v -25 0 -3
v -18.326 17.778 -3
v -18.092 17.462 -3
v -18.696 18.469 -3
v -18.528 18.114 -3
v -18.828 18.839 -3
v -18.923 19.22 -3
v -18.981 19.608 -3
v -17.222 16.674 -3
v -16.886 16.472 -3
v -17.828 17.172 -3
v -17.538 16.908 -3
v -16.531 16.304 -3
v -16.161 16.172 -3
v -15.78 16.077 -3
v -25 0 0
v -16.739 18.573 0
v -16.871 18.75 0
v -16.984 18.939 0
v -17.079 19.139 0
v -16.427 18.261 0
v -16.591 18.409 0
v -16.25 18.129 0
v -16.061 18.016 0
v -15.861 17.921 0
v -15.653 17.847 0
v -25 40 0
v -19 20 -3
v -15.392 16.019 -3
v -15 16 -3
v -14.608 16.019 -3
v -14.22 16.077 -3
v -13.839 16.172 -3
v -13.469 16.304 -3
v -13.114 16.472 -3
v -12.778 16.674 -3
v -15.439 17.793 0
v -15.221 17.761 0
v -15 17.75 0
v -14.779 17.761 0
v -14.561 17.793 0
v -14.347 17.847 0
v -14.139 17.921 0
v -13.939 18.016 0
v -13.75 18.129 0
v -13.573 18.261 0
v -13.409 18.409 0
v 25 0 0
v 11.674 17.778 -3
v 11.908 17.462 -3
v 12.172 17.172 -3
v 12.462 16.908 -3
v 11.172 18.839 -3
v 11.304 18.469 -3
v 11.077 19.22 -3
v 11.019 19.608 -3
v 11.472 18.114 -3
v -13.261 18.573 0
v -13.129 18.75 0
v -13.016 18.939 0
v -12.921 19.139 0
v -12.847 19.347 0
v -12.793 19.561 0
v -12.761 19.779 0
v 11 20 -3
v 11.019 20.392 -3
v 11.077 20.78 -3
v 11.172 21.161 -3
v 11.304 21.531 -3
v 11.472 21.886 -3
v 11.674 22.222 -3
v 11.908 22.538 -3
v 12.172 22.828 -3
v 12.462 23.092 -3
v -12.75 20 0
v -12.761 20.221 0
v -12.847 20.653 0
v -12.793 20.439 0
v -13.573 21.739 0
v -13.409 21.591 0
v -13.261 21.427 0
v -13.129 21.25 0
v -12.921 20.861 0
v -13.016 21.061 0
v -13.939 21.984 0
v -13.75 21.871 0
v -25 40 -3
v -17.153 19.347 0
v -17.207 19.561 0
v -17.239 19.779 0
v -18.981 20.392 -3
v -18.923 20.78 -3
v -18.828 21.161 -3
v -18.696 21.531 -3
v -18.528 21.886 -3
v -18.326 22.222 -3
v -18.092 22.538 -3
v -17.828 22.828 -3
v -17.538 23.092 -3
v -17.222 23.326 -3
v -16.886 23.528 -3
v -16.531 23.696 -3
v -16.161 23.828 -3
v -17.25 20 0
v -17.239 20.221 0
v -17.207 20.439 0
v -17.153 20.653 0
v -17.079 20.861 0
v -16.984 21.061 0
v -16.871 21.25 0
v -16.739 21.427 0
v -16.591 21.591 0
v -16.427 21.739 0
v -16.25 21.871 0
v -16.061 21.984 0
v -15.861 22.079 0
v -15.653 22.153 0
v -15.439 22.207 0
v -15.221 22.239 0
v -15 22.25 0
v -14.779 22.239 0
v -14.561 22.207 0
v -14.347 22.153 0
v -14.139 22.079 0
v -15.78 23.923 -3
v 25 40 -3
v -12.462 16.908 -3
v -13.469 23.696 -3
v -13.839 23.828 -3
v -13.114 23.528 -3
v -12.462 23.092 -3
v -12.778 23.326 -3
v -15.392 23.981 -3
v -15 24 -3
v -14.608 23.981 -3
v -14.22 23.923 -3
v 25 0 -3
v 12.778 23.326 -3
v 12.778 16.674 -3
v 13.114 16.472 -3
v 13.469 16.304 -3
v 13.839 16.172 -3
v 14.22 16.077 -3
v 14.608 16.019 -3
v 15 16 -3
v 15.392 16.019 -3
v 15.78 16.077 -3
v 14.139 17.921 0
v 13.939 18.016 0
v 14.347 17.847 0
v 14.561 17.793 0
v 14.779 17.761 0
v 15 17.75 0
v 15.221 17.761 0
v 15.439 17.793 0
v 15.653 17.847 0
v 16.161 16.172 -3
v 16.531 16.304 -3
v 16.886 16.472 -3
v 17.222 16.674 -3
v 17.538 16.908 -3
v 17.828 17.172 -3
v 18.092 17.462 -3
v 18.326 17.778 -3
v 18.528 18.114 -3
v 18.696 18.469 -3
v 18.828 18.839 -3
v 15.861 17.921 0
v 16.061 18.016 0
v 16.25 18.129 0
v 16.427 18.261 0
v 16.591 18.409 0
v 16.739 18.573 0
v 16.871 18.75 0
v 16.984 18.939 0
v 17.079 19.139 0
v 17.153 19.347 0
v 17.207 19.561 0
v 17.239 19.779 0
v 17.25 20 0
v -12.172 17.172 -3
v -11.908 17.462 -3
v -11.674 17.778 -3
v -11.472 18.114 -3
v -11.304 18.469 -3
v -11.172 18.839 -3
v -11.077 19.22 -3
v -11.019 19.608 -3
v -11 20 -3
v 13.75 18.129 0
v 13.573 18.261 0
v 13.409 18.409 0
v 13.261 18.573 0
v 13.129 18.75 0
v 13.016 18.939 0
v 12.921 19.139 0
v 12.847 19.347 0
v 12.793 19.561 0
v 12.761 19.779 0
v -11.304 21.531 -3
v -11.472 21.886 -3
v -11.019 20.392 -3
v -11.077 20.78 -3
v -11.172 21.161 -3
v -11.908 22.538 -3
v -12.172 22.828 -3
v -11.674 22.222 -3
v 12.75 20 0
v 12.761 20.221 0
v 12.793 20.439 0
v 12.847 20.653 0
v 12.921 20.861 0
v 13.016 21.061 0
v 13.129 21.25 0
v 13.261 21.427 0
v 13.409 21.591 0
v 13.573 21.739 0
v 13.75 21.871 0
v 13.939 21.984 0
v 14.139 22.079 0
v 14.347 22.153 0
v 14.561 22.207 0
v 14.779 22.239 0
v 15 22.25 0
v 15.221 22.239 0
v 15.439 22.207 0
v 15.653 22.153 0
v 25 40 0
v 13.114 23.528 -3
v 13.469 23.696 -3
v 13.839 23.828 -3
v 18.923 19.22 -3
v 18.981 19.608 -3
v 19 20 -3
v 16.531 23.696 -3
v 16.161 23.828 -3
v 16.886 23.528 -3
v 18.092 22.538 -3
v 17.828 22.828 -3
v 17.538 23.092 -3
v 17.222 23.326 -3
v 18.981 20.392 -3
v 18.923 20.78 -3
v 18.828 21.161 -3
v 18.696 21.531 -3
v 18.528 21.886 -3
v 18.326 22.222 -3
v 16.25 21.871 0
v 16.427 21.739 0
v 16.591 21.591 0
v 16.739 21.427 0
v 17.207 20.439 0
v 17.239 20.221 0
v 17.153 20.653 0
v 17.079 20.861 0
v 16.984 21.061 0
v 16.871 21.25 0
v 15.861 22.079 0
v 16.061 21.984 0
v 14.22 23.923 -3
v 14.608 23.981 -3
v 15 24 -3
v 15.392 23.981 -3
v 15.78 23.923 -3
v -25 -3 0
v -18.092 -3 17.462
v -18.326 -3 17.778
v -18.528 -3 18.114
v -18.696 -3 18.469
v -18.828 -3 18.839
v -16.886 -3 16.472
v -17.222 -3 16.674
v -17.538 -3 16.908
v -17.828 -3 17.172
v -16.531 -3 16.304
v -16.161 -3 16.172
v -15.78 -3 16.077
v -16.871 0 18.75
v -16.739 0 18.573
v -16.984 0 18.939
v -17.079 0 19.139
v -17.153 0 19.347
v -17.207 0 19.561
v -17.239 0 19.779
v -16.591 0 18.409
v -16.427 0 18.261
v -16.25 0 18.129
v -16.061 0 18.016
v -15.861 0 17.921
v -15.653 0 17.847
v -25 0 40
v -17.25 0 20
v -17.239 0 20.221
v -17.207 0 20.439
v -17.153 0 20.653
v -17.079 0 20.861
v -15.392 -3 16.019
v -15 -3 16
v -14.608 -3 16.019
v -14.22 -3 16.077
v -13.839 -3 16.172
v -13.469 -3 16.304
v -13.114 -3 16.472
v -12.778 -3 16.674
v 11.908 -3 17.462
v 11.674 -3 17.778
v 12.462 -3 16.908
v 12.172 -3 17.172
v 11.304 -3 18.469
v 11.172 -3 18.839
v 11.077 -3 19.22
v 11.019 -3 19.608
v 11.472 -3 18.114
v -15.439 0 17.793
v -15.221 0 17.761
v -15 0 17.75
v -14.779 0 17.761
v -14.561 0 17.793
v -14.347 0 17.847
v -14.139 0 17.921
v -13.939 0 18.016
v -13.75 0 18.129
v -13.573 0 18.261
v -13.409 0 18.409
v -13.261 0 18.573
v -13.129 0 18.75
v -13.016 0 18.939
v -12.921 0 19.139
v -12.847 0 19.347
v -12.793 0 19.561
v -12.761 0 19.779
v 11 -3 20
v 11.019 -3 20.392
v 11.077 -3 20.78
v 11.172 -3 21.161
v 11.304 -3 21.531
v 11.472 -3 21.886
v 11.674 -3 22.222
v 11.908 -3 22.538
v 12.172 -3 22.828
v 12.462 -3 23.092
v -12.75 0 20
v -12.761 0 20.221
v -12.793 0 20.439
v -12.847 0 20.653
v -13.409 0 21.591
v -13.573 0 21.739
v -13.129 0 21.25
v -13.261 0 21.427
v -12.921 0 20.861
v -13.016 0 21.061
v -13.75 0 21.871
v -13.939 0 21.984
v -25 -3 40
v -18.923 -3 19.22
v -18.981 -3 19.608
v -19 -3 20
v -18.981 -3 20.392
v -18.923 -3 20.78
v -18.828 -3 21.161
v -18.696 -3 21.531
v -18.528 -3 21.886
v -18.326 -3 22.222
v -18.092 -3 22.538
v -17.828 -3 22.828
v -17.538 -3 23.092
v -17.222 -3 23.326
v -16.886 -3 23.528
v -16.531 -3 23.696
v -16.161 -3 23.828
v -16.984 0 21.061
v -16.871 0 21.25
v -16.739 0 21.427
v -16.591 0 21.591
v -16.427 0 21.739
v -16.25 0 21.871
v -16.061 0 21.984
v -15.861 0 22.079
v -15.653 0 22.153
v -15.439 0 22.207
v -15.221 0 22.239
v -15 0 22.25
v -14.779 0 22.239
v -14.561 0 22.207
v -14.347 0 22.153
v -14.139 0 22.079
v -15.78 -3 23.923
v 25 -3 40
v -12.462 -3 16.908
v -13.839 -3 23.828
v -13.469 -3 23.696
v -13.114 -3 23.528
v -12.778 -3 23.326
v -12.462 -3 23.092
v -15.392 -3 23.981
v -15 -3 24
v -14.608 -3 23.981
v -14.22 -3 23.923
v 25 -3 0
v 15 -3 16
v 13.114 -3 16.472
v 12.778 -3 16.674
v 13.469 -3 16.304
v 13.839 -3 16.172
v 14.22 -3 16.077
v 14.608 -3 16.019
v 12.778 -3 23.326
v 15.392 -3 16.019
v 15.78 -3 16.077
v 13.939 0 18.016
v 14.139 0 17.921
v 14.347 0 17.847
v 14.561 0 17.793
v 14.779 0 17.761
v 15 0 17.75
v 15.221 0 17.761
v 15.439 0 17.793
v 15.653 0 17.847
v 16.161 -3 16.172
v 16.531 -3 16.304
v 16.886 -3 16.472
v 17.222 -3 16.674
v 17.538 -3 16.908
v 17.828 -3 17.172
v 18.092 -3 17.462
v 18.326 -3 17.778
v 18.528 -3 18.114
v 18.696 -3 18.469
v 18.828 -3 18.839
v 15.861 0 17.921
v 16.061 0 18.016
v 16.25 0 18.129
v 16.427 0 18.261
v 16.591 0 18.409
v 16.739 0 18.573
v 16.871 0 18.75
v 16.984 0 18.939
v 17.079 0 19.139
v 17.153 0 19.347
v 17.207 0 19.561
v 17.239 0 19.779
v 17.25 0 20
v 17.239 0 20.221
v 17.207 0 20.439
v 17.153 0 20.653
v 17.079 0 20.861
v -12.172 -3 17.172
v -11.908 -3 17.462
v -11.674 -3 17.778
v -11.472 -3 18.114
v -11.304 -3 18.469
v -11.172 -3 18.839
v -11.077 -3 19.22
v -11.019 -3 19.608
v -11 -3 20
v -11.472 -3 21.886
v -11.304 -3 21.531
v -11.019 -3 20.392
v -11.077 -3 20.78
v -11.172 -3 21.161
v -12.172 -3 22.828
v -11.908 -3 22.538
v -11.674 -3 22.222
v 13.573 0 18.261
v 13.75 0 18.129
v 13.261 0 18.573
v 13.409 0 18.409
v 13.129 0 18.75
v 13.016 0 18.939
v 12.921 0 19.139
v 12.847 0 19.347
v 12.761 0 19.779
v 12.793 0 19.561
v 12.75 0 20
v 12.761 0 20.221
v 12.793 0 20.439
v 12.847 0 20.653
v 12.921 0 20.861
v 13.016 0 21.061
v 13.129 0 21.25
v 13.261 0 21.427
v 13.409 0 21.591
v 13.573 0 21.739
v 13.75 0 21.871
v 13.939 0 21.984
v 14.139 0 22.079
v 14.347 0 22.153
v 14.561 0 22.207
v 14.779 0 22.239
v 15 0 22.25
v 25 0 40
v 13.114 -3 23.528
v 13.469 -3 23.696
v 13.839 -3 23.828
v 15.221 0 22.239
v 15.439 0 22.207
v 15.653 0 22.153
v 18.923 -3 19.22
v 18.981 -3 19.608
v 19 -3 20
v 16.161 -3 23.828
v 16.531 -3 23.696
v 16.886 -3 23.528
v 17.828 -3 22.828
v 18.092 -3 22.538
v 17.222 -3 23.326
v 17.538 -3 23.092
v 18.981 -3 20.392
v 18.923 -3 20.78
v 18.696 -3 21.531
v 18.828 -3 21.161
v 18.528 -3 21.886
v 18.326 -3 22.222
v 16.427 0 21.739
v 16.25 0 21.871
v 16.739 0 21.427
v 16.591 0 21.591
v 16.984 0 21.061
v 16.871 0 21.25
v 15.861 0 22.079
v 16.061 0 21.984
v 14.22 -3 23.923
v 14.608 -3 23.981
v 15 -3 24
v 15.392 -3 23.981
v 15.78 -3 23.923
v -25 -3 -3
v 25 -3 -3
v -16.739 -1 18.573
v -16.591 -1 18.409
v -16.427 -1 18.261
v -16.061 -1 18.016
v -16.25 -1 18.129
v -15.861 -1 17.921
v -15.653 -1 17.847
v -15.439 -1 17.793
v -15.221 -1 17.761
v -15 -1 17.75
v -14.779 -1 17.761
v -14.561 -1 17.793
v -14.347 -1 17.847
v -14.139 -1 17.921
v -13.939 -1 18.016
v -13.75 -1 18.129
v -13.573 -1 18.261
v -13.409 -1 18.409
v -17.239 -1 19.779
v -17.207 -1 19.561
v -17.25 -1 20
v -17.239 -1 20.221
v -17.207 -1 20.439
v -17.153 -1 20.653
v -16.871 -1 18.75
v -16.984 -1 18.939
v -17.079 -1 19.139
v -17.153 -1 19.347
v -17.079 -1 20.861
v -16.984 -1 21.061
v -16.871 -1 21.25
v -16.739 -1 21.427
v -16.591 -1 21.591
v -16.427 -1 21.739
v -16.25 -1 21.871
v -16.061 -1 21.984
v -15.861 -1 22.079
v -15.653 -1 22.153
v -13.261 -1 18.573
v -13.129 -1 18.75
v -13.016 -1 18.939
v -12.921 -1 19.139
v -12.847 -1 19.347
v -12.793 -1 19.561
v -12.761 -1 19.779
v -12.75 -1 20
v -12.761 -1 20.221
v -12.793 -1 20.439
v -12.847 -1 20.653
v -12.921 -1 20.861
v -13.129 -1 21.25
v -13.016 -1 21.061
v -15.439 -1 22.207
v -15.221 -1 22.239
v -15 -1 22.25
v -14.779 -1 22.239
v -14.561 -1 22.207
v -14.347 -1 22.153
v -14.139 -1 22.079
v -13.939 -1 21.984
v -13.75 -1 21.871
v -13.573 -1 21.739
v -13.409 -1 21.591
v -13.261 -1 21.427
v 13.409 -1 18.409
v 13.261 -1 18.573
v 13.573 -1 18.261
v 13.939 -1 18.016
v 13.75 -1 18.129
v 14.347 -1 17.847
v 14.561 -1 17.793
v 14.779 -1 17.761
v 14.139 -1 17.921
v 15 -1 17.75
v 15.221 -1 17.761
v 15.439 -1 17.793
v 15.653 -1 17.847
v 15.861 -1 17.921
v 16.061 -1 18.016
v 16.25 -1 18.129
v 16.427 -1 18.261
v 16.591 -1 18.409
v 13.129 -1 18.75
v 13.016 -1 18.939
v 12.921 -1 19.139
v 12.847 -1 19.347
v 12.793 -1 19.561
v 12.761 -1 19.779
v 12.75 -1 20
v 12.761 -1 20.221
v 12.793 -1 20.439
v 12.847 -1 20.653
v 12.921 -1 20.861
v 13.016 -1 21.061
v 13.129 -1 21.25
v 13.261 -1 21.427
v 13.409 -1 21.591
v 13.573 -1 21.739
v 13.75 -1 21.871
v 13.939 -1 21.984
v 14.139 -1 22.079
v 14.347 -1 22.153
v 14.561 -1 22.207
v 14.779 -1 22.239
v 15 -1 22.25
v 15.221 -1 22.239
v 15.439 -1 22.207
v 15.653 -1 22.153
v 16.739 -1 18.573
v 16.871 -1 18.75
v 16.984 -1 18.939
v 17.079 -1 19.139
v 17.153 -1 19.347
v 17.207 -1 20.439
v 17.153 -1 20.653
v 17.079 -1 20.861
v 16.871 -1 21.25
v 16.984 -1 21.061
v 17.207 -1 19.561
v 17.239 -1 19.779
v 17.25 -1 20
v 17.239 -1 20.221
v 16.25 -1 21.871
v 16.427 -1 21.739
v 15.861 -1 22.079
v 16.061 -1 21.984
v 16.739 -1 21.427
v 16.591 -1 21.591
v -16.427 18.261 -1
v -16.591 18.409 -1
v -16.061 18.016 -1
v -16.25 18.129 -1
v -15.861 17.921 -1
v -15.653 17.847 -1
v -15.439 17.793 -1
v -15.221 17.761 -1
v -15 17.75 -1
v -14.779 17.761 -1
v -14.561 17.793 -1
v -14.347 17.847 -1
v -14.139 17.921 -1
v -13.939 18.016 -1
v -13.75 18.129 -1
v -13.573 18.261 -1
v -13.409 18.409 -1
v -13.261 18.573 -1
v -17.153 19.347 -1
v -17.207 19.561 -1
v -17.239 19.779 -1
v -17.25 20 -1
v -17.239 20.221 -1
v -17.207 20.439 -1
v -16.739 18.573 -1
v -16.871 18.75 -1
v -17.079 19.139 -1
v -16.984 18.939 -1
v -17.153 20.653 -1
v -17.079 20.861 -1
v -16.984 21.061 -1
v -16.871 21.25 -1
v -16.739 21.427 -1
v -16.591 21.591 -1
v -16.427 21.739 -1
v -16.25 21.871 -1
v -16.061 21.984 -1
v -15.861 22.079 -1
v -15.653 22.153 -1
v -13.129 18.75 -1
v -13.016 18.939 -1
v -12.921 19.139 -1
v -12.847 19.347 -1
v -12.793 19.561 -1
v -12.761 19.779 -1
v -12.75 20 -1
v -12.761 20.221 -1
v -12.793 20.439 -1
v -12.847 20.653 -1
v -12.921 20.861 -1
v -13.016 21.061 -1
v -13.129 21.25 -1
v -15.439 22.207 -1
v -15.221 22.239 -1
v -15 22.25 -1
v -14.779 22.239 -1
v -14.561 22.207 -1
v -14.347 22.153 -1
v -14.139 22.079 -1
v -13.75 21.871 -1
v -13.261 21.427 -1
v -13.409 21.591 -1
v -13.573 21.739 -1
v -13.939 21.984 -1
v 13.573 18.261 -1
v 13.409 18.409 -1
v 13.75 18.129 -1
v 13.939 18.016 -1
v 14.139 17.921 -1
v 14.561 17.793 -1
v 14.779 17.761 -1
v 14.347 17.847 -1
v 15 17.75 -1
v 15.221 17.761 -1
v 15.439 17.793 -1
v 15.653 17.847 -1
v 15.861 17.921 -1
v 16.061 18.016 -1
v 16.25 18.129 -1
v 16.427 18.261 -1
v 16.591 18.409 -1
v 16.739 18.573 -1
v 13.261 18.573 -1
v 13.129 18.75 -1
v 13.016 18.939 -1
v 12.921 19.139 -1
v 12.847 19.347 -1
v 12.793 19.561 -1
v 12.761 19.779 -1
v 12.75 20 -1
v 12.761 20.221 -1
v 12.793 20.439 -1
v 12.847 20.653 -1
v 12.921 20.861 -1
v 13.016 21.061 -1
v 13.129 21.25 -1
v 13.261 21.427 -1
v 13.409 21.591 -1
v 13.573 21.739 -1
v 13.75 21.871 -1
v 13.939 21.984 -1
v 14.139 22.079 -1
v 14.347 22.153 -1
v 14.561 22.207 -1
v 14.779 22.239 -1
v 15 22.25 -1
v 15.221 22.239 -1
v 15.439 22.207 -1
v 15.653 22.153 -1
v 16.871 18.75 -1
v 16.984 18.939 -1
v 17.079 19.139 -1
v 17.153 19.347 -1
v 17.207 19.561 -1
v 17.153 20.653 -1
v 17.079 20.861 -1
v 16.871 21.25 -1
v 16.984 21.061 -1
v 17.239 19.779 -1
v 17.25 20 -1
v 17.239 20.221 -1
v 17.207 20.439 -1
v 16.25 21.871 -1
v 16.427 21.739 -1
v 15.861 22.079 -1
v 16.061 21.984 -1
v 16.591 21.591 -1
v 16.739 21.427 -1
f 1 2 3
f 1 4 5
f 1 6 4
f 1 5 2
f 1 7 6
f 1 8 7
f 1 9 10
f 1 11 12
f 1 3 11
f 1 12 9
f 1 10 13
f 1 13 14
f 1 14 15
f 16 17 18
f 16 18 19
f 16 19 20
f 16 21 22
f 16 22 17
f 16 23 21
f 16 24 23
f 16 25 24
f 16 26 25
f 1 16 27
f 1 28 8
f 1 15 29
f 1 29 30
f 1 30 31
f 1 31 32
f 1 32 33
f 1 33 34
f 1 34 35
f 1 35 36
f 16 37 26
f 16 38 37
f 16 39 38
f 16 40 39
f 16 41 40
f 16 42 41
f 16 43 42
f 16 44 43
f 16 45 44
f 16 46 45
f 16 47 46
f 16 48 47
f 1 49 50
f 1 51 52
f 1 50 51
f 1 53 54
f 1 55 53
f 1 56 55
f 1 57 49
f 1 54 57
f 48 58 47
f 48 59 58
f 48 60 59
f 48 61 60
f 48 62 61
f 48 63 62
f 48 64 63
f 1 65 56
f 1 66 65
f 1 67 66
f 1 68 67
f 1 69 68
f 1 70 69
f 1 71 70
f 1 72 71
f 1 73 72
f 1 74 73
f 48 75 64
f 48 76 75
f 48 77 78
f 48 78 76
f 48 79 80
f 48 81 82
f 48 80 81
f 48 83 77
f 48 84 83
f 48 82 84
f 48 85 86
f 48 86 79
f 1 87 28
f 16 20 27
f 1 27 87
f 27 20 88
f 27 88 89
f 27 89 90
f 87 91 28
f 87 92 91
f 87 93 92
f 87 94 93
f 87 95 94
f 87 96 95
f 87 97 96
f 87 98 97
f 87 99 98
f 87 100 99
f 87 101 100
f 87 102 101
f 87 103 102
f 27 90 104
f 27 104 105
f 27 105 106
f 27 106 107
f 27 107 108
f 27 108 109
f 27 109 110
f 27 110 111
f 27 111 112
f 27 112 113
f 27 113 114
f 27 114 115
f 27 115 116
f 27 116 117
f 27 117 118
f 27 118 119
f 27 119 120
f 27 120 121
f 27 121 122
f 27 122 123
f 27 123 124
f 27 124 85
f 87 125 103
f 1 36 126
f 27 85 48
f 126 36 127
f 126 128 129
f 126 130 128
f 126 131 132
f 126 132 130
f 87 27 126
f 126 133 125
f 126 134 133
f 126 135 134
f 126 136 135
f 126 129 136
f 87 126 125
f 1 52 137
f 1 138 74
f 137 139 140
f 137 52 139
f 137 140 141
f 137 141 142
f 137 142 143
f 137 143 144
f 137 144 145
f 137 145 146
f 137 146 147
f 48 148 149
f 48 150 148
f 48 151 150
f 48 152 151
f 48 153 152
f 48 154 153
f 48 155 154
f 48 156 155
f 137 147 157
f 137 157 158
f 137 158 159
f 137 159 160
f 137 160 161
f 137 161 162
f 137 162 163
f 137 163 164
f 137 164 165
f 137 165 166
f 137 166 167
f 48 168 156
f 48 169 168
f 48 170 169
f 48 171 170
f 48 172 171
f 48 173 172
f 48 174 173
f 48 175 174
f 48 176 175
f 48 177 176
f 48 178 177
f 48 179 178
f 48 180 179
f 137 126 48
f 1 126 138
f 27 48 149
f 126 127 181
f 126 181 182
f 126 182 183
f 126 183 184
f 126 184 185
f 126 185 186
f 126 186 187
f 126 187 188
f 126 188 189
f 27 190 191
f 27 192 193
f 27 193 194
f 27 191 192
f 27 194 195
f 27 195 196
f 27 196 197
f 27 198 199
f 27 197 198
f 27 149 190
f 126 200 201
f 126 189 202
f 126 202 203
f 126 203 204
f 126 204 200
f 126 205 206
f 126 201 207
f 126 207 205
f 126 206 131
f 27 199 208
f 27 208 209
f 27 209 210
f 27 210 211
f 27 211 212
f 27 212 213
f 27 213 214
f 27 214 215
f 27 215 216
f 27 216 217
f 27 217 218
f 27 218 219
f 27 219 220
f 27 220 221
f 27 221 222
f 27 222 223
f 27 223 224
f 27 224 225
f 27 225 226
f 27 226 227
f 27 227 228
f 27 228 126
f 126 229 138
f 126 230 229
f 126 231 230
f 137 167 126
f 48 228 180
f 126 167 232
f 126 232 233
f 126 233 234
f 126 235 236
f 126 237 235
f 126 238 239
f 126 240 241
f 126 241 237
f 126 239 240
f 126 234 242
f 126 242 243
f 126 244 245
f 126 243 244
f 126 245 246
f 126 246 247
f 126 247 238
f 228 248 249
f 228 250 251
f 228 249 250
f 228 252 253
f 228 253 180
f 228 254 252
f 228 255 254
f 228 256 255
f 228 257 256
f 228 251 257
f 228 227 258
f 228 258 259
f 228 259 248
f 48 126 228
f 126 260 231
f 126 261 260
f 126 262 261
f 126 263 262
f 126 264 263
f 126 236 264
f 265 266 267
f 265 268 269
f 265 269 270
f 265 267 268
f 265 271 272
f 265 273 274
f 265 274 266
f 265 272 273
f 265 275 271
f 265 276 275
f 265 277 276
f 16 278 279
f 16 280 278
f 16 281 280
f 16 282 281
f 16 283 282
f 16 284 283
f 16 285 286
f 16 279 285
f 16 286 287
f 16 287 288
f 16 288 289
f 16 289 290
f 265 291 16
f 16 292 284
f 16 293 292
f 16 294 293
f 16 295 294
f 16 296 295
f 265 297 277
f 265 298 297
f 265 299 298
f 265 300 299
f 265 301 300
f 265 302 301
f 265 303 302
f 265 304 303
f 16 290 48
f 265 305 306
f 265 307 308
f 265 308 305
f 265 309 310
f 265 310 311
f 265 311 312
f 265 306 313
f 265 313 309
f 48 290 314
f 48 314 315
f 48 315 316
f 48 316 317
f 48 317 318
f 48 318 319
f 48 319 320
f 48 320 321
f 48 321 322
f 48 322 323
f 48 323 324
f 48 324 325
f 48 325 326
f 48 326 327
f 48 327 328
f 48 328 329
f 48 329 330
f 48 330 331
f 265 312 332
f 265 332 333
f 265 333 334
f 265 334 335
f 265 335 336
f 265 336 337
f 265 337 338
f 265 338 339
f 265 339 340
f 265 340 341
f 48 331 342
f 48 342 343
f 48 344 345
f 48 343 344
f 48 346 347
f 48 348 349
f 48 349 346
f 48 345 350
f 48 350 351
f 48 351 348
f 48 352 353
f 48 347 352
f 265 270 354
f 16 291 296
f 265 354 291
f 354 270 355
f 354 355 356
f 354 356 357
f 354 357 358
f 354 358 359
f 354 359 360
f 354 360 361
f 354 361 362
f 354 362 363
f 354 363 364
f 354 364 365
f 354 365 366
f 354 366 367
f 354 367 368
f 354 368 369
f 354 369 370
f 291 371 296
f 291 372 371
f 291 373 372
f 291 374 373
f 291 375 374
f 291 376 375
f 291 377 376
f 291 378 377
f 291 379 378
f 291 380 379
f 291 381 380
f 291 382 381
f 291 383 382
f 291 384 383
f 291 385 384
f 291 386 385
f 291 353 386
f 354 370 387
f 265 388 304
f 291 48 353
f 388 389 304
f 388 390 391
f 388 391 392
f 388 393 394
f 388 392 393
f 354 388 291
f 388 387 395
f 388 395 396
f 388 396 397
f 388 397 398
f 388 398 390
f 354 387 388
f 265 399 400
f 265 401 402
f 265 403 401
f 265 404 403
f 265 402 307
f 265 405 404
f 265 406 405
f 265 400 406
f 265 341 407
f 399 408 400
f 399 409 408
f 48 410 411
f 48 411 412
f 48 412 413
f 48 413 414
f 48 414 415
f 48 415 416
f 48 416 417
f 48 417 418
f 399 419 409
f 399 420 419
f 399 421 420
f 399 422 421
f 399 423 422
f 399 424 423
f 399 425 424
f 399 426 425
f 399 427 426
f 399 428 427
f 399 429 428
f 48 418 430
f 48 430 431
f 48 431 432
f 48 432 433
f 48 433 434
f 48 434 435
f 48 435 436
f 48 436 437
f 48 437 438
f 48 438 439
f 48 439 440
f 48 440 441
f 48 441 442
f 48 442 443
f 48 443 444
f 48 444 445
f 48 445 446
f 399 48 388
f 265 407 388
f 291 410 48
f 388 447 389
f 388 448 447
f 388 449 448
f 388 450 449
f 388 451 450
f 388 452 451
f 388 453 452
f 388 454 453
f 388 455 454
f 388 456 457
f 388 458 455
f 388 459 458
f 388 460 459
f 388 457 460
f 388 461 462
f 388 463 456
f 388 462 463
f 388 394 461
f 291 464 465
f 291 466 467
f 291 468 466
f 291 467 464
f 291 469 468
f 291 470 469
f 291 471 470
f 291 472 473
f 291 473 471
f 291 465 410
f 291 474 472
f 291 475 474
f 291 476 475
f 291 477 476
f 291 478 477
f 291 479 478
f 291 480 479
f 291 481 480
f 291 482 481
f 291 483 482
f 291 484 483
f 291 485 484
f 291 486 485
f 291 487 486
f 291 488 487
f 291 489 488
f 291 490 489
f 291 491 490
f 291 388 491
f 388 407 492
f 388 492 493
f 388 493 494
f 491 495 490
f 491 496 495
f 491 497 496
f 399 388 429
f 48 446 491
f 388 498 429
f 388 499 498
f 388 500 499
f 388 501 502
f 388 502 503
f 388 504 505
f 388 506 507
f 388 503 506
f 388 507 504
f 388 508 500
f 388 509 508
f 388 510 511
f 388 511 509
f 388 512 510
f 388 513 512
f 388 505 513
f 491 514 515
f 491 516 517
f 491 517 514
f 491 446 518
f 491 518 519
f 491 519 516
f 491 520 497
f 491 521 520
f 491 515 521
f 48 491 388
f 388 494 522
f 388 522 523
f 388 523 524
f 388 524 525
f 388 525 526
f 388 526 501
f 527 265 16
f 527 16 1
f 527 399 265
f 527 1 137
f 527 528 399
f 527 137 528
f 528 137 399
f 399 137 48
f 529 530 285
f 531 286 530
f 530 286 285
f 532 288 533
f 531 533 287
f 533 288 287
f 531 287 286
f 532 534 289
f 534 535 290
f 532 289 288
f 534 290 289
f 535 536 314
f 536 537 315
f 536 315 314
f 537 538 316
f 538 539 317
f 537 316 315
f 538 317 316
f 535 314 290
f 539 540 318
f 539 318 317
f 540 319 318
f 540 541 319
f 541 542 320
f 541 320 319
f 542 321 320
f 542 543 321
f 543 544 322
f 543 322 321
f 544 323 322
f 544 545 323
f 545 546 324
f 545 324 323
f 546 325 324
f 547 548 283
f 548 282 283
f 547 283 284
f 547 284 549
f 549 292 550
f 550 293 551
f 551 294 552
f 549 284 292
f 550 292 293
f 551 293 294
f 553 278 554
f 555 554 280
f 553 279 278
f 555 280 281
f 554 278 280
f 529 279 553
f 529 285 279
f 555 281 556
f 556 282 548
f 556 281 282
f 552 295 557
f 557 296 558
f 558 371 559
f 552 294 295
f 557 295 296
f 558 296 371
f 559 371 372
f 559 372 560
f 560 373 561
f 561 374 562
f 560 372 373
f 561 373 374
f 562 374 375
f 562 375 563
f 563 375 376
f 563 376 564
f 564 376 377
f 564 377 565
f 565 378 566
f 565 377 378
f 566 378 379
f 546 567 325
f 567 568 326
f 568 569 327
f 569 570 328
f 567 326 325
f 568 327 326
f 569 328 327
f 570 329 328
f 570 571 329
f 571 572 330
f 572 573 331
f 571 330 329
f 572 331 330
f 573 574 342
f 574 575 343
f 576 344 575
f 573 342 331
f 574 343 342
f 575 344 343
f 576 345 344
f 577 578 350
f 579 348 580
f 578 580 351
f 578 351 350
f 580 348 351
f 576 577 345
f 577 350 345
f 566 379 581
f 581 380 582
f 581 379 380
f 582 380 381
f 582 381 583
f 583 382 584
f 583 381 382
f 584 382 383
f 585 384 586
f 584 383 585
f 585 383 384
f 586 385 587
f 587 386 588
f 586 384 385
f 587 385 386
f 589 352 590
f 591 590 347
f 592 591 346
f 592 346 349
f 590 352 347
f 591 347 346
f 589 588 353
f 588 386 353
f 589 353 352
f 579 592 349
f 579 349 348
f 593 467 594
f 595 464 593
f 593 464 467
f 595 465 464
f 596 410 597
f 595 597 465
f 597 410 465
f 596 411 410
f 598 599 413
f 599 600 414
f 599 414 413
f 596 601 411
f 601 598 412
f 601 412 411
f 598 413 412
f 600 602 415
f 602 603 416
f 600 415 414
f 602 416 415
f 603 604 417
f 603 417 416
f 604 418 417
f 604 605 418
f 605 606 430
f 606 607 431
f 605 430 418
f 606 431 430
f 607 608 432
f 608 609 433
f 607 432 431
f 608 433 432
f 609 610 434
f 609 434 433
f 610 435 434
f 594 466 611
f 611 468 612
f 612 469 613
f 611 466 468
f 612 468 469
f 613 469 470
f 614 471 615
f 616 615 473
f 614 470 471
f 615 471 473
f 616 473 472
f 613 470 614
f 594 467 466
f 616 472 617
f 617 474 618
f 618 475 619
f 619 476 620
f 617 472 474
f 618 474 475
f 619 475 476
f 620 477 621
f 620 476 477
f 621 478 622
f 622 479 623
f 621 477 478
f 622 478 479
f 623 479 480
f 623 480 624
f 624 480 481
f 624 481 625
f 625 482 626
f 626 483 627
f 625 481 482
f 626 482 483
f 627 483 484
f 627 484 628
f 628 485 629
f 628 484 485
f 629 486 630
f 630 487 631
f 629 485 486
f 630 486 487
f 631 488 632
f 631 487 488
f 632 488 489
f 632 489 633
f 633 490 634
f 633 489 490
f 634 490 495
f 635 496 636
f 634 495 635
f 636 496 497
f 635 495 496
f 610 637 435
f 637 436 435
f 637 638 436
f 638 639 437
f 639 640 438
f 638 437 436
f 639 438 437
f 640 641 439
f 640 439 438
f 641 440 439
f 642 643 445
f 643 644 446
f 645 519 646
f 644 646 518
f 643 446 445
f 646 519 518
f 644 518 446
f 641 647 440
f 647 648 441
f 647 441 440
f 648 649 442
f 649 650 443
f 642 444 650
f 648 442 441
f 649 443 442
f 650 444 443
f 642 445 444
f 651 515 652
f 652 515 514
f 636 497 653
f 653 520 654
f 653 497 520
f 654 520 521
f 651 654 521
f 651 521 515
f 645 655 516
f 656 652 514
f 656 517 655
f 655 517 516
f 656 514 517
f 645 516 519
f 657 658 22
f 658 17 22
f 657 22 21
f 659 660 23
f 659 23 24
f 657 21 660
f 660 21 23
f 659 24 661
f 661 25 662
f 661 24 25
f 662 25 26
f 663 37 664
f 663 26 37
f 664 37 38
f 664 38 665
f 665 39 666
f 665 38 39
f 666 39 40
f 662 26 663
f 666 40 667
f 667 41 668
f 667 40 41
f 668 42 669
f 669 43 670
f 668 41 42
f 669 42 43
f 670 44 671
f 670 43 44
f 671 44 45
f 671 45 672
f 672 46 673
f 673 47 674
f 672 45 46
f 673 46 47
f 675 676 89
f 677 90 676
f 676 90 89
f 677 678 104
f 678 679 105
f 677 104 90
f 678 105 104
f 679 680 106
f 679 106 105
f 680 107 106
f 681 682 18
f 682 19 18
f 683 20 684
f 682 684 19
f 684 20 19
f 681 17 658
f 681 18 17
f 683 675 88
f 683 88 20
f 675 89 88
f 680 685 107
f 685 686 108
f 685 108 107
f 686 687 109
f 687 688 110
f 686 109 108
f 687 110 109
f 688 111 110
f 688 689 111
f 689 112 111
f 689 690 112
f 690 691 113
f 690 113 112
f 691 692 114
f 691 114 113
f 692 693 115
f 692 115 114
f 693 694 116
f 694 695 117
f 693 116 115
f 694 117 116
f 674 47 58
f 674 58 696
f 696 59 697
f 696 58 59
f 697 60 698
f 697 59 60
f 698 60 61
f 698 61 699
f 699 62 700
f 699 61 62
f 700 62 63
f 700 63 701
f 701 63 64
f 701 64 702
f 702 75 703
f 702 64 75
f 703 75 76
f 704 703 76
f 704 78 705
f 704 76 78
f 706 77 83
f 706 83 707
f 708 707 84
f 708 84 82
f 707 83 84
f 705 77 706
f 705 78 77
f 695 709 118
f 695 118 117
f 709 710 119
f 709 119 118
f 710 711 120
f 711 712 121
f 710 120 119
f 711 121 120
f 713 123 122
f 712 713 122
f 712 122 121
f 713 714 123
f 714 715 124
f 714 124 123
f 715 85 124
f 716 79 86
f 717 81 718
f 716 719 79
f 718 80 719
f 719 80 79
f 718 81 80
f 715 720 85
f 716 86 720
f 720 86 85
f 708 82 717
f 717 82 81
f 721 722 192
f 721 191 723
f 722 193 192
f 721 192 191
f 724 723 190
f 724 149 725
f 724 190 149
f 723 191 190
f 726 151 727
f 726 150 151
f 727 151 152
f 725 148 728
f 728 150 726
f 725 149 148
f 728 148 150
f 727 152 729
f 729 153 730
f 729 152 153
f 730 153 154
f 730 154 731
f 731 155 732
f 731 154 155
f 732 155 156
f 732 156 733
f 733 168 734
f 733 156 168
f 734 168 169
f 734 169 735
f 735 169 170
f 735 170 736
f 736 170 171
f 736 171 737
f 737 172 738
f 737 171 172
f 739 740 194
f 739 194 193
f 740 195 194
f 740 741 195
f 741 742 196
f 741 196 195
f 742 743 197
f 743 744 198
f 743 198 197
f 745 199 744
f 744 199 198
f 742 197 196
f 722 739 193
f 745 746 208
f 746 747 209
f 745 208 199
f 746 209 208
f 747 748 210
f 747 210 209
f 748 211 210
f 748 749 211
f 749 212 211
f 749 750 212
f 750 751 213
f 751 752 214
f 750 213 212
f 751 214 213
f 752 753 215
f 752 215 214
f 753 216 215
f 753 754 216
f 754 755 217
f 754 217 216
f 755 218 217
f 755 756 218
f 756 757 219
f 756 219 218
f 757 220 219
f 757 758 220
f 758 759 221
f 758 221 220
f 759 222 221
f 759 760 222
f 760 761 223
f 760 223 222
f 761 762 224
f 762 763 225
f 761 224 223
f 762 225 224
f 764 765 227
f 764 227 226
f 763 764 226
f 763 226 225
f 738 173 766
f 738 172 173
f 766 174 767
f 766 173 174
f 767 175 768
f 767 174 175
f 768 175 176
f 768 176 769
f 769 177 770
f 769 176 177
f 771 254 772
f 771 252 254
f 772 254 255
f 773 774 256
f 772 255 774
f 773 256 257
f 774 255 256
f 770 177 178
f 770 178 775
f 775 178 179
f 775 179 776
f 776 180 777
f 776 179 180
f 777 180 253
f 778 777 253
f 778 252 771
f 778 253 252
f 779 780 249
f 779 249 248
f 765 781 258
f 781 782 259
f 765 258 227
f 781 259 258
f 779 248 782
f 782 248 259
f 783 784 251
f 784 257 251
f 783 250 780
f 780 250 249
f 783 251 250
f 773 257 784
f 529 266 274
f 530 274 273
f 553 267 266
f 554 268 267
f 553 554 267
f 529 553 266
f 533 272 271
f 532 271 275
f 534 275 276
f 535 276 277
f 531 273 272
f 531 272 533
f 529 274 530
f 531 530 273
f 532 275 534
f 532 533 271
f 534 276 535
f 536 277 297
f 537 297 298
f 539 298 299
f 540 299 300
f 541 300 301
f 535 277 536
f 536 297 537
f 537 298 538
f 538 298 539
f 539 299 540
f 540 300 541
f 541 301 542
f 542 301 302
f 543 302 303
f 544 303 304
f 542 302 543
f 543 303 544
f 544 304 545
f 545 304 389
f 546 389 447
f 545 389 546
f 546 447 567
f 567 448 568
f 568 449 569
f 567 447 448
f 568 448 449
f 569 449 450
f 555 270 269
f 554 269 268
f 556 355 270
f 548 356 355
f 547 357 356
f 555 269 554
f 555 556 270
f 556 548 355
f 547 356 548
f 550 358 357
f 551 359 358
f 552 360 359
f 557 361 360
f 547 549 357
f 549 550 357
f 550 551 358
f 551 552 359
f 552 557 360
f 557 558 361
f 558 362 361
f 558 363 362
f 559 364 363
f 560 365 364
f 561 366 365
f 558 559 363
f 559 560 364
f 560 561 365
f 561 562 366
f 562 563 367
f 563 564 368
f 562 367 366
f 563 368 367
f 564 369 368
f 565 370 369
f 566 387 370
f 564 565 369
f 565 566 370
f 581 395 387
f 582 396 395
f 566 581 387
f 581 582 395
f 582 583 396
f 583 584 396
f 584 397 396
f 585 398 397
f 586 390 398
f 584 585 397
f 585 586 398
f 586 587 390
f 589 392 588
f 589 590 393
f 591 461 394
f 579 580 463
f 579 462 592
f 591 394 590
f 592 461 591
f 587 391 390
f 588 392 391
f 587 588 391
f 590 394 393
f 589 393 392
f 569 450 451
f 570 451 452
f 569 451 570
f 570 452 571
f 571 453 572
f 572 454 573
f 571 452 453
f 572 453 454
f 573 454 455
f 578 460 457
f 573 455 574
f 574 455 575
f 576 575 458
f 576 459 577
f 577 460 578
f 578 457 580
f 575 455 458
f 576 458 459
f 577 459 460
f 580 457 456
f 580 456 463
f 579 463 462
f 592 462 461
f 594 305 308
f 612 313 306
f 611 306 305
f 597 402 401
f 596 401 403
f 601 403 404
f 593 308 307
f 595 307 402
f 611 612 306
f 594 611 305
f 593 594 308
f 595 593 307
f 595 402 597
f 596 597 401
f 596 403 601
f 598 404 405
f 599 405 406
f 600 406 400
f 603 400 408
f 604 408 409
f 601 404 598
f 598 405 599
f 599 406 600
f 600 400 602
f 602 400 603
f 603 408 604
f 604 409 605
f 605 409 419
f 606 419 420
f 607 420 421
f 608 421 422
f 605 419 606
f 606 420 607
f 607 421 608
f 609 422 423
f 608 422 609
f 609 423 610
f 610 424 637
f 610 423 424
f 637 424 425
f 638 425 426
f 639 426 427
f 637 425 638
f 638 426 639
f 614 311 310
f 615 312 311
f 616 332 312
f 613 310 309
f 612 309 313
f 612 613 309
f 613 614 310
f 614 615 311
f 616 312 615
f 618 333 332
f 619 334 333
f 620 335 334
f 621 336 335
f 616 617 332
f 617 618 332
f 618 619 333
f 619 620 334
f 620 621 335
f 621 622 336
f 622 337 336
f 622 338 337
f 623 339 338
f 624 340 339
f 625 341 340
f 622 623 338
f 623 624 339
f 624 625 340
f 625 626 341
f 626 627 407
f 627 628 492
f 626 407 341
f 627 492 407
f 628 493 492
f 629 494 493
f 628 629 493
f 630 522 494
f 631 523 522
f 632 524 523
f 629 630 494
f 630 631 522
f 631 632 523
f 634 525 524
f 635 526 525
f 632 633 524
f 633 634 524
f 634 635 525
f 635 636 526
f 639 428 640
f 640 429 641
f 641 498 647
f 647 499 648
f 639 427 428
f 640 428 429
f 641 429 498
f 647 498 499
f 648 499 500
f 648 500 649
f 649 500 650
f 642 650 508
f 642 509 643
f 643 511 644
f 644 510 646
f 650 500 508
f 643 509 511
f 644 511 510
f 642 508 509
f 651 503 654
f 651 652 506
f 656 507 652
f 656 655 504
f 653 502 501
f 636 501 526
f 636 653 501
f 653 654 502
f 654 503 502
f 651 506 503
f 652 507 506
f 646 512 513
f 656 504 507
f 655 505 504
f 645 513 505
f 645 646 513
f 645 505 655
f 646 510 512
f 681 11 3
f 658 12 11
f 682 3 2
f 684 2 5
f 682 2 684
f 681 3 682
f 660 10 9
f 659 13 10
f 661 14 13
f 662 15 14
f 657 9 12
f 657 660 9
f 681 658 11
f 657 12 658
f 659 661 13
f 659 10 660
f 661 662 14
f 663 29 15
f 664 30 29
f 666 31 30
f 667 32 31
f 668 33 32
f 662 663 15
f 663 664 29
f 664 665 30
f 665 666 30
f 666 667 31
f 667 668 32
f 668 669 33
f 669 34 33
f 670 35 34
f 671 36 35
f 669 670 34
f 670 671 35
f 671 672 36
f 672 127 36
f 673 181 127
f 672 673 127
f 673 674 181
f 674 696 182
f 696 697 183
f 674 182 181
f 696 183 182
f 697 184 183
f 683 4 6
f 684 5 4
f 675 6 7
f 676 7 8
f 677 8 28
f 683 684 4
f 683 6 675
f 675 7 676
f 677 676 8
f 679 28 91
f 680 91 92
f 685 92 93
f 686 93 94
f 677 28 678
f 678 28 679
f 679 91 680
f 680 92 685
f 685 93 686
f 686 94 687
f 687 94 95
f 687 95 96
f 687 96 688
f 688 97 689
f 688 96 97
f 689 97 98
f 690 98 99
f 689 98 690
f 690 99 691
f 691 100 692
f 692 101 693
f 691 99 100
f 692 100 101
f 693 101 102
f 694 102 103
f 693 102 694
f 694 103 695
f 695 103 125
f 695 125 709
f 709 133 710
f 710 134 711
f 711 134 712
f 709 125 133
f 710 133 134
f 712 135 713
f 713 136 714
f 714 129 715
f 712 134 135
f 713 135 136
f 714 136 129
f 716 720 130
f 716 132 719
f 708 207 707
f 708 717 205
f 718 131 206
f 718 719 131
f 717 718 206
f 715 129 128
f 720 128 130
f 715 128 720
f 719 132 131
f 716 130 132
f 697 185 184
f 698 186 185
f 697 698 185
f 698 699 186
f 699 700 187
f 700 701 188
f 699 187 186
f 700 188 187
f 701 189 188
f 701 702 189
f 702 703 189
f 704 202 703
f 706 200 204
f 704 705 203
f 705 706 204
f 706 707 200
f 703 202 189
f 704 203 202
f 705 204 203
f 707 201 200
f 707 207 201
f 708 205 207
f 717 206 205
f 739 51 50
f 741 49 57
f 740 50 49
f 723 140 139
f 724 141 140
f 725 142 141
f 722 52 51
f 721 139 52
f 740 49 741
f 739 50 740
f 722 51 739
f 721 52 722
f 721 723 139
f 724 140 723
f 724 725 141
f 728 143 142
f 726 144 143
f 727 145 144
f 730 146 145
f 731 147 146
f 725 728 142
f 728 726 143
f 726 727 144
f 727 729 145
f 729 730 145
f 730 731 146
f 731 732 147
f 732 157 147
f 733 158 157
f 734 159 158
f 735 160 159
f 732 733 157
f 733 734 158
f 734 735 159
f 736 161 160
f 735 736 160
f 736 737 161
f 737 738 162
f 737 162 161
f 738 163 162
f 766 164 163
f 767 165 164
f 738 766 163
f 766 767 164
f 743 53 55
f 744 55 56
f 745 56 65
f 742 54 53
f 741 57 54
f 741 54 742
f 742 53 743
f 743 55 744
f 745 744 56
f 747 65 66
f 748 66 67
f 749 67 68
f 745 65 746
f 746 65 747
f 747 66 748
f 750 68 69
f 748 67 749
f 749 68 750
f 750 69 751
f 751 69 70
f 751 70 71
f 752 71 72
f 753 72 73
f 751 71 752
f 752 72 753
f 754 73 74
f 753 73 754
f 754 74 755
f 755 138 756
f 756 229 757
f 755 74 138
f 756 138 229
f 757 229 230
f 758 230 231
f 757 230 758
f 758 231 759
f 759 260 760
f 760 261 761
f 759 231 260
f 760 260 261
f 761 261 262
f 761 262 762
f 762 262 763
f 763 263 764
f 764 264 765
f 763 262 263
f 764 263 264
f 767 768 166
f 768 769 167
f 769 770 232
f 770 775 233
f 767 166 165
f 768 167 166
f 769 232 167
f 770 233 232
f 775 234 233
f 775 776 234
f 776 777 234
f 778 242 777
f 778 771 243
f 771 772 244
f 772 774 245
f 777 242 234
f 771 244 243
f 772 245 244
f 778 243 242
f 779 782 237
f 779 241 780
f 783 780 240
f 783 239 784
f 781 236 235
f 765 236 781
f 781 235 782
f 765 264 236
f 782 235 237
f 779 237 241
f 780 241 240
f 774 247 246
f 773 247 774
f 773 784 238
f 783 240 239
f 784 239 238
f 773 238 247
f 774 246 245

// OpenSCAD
// =====================================================
//  L 字金具 (L-bracket)  /  M4 皿穴 × 4
//  内側コーナー = 原点
//  水平フランジ : +Y 方向 / 垂直フランジ : +Z 方向
// =====================================================

$fn = 64;

// ---------- パラメータ ----------
W       = 50;    // 幅 (X 方向) : 両フランジ共通
D       = 40;    // 水平面の奥行き (+Y)
H       = 40;    // 垂直面の高さ  (+Z)
T       = 3;     // 板厚

HOLE_D  = 4.5;   // 貫通穴 Φ4.5 (M4 用)
CSK_D   = 8;     // 皿座面 Φ8
CSK_H   = 2;     // 皿座面深さ 2
EDGE    = 10;    // 面の縁から穴中心までの距離

EPS     = 0.01;  // 差分演算用の微小値

XOFF    = W/2 - EDGE;   // 穴の左右オフセット = ±15

// ---------- 皿穴モジュール ----------
// z = 0 が外側表面(ボルト頭が当たる側)、材料は +Z 側に厚さ t
module countersunk_hole(t = T) {
    // 貫通穴
    translate([0, 0, -EPS])
        cylinder(d = HOLE_D, h = t + 2*EPS);
    // 皿座面(円錐) : 表面で Φ8 → 深さ 2mm で Φ4.5
    cylinder(d1 = CSK_D, d2 = HOLE_D, h = CSK_H);
    // 表面をきれいに抜くための微小延長
    translate([0, 0, -EPS])
        cylinder(d = CSK_D, h = EPS);
}

// ---------- 本体 ----------
difference() {
    union() {
        // 水平フランジ : 内面 z = 0、外面 z = -T、+Y へ 40mm
        translate([-W/2, 0, -T])  cube([W, D, T]);
        // 垂直フランジ : 内面 y = 0、外面 y = -T、+Z へ 40mm
        translate([-W/2, -T, 0])  cube([W, T, H]);
        // 外側コーナー部の充填
        translate([-W/2, -T, -T]) cube([W, T, T]);
    }

    // --- 水平面の皿穴 (外側 = 下面 z = -T、+Z へ貫通) ---
    for (x = [-XOFF, XOFF])
        translate([x, D/2, -T])
            countersunk_hole();

    // --- 垂直面の皿穴 (外側 = 背面 y = -T、+Y へ貫通) ---
    for (x = [-XOFF, XOFF])
        translate([x, -T, H/2])
            rotate([-90, 0, 0])
                countersunk_hole();
}
